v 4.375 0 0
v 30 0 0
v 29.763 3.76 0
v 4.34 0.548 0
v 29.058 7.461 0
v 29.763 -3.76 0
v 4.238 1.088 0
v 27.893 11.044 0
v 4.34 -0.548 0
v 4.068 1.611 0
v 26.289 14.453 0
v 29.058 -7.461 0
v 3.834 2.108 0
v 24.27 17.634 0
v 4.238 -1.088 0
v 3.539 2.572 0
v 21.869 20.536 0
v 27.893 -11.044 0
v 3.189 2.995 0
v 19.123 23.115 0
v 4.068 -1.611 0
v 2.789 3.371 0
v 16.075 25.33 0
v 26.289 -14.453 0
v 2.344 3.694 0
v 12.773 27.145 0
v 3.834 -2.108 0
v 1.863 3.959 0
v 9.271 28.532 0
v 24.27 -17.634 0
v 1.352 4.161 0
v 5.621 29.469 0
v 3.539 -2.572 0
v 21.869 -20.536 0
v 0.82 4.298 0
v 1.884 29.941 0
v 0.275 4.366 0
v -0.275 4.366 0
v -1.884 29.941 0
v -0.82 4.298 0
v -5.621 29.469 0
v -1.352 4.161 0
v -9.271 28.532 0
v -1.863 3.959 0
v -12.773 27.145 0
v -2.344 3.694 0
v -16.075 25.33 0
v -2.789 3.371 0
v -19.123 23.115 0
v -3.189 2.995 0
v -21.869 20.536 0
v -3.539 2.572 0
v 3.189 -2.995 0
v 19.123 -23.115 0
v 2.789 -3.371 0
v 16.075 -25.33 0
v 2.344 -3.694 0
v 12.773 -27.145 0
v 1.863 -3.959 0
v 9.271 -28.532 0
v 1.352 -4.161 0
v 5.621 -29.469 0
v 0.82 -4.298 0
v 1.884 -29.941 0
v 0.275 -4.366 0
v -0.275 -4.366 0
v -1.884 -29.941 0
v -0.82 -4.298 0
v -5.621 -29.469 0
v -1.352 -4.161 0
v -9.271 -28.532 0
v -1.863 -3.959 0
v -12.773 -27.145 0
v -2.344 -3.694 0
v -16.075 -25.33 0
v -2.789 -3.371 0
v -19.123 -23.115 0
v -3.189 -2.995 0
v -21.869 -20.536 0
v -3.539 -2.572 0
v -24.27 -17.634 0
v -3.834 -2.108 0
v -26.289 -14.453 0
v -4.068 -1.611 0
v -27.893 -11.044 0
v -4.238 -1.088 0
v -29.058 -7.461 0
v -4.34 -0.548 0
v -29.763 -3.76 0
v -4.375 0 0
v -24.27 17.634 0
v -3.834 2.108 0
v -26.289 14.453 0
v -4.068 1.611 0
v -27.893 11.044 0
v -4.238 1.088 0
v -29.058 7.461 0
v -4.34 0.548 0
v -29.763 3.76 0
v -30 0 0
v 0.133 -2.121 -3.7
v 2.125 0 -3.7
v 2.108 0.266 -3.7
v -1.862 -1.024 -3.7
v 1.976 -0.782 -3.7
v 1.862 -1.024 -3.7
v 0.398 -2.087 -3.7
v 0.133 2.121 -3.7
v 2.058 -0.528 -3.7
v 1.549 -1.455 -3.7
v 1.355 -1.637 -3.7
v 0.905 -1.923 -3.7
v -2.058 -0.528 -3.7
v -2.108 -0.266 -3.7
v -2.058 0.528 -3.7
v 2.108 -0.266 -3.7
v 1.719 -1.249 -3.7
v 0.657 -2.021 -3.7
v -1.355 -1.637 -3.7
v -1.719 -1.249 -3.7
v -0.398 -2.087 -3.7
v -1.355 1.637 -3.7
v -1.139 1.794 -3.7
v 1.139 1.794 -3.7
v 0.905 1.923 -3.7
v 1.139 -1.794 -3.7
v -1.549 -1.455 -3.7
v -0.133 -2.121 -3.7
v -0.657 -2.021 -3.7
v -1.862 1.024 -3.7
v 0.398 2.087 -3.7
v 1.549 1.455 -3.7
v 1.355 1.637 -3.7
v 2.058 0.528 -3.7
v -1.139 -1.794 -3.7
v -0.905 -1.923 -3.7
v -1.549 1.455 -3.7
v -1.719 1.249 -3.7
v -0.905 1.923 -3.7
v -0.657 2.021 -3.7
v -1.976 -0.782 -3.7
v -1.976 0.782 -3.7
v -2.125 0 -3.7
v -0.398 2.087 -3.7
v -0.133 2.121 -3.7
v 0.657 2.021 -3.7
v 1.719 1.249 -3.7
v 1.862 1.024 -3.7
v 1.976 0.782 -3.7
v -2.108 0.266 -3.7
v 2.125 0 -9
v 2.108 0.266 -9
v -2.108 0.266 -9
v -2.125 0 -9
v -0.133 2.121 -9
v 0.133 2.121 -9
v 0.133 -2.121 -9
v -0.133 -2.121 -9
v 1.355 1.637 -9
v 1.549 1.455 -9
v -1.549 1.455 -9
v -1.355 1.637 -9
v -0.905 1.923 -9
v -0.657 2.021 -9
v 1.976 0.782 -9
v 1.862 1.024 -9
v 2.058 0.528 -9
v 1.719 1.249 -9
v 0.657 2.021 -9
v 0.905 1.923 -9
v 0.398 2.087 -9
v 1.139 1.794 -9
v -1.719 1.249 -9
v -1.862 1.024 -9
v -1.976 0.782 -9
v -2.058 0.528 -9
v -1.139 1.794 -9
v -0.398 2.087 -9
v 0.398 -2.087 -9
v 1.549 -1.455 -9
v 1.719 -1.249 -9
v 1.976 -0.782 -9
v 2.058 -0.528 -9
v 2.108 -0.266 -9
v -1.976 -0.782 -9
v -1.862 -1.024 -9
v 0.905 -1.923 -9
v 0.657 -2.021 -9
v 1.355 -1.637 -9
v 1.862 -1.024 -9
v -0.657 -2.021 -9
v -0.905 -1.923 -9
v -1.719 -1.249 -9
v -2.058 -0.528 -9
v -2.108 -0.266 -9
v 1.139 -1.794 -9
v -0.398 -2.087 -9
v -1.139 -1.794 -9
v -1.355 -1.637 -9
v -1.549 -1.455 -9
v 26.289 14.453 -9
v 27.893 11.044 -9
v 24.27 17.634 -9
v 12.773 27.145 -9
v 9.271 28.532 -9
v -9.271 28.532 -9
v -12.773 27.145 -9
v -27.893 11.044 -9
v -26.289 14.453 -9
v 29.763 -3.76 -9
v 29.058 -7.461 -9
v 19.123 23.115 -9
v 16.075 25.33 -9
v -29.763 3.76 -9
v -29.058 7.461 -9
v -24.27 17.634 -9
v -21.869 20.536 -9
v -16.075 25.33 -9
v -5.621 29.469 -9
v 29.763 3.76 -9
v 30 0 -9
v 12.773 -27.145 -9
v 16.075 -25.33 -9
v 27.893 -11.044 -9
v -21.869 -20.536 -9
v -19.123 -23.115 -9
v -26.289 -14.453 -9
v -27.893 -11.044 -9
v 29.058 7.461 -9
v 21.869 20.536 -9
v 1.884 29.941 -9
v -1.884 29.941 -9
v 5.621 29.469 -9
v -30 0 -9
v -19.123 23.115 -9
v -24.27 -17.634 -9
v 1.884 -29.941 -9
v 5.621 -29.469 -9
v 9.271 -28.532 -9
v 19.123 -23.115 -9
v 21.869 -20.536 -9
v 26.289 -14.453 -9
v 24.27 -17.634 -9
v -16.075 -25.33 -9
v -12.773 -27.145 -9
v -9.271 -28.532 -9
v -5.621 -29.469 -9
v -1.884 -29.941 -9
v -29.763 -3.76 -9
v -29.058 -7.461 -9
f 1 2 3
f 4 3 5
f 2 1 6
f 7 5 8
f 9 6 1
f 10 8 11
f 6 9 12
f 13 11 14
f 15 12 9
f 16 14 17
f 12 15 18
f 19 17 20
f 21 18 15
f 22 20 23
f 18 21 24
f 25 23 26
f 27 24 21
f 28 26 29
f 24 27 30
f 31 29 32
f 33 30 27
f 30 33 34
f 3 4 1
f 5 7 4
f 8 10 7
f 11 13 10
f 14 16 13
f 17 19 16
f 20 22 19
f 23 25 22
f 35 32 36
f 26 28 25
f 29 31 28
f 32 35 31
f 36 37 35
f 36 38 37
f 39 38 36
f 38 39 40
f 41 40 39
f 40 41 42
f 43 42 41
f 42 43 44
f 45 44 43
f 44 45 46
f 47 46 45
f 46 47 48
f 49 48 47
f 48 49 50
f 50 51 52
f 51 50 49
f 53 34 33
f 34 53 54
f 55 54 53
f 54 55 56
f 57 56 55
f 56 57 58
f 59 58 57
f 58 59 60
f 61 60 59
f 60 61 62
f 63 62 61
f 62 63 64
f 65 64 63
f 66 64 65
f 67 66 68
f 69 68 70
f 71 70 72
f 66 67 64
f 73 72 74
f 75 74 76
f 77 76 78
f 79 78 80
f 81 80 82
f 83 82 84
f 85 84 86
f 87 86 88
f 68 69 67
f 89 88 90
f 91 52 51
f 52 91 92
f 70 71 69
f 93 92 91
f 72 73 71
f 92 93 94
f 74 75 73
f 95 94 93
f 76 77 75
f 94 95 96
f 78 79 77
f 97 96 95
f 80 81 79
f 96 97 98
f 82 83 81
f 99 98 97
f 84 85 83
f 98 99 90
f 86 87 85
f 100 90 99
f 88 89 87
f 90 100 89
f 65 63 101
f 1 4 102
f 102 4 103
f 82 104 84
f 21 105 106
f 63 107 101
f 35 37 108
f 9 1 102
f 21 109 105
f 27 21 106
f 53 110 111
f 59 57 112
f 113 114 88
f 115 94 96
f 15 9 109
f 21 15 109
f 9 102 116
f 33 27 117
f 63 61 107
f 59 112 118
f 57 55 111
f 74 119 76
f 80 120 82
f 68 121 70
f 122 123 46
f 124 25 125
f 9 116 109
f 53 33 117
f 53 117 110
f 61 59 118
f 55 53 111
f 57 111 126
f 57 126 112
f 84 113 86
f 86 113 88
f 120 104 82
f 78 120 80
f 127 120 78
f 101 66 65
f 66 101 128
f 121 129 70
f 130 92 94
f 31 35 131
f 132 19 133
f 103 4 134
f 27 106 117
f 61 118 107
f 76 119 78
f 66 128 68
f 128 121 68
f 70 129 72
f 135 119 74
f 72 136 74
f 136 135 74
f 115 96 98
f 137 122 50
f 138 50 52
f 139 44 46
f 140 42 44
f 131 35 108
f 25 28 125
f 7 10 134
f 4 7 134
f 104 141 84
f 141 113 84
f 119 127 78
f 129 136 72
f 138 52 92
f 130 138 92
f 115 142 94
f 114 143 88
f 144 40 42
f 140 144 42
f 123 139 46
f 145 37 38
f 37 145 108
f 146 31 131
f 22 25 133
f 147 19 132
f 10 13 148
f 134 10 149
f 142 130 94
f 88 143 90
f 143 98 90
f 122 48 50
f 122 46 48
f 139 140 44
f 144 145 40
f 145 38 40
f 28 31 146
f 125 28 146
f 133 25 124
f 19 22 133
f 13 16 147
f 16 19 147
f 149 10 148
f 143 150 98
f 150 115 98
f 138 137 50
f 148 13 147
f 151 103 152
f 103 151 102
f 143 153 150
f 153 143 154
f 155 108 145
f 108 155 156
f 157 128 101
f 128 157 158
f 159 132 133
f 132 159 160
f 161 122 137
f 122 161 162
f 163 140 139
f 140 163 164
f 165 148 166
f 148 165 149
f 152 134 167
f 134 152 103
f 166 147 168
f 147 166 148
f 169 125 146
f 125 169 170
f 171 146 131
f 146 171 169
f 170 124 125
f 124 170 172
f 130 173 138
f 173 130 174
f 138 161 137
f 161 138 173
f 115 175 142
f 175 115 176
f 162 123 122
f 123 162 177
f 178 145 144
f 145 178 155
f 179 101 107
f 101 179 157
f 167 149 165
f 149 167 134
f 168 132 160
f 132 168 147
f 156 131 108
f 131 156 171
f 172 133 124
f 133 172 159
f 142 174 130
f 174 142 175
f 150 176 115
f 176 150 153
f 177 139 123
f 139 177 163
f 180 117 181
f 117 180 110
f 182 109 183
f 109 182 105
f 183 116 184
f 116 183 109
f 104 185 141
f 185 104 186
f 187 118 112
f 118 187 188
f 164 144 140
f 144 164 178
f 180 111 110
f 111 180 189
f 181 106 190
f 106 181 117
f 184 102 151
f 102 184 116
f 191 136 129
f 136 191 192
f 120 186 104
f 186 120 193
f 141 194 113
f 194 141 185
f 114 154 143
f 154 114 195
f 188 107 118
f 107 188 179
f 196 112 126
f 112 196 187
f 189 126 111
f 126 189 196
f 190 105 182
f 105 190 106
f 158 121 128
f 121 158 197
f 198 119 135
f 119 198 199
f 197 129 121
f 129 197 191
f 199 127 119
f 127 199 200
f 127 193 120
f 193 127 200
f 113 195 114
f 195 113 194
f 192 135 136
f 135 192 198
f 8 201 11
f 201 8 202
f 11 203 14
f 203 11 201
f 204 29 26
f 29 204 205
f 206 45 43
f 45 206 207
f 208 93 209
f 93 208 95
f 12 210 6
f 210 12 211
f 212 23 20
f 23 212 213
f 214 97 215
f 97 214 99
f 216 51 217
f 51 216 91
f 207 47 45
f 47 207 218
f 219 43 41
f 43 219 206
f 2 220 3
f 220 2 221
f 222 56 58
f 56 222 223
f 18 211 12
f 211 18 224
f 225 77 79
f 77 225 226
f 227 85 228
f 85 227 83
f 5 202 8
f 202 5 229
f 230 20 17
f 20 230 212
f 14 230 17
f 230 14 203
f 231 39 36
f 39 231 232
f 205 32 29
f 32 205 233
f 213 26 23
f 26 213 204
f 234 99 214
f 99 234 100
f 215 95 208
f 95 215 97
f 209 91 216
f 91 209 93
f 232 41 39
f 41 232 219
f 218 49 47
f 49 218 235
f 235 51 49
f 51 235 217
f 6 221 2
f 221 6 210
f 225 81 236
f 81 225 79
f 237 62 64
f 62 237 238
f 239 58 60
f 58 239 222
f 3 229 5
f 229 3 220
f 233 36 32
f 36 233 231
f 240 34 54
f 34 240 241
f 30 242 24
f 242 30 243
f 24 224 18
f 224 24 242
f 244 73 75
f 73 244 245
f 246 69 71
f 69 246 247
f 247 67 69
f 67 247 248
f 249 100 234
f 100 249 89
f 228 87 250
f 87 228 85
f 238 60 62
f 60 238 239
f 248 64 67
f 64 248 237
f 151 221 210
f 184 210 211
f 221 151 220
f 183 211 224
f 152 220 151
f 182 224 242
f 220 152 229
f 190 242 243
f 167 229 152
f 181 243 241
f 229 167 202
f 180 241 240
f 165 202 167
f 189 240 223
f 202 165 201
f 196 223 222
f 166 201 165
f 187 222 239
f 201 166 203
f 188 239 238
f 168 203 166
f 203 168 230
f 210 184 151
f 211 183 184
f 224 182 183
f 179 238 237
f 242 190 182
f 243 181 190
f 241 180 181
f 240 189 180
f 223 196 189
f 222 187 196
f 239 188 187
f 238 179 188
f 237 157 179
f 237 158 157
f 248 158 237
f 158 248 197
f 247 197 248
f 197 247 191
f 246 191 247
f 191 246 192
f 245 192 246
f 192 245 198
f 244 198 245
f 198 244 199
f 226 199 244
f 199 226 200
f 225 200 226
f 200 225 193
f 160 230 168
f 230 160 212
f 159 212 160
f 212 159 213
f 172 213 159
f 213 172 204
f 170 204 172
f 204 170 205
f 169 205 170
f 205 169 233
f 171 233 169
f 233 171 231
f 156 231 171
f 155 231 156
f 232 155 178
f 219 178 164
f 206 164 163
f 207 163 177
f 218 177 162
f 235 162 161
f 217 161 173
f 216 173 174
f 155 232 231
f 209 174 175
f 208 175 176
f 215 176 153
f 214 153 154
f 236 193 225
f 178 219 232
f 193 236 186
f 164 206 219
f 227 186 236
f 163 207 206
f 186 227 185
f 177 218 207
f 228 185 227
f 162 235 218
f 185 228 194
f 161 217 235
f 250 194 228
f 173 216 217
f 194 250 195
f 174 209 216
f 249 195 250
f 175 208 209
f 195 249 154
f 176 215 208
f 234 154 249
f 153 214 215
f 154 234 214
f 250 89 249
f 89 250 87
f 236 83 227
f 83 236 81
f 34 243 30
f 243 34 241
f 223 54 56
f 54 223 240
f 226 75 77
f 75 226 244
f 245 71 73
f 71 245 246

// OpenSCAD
$fn = 50;


difference() {
	union() {
		translate(v = [0, 0, -9.0000000000]) {
			cylinder(h = 9, r = 30.0000000000);
		}
	}
	union() {
		translate(v = [0, 0, 0]) {
			rotate(a = [0, 0, 0]) {
				difference() {
					union() {
						translate(v = [0, 0, -12.0000000000]) {
							cylinder(h = 12, r = 2.0000000000);
						}
						translate(v = [0, 0, -3.7000000000]) {
							cylinder(h = 3.7000000000, r1 = 2.1250000000, r2 = 4.3750000000);
						}
						translate(v = [0, 0, -12.0000000000]) {
							cylinder(h = 12, r = 2.1250000000);
						}
						translate(v = [0, 0, -12.0000000000]) {
							cylinder(h = 12, r = 2.0000000000);
						}
					}
					union();
				}
			}
		}
	}
}
